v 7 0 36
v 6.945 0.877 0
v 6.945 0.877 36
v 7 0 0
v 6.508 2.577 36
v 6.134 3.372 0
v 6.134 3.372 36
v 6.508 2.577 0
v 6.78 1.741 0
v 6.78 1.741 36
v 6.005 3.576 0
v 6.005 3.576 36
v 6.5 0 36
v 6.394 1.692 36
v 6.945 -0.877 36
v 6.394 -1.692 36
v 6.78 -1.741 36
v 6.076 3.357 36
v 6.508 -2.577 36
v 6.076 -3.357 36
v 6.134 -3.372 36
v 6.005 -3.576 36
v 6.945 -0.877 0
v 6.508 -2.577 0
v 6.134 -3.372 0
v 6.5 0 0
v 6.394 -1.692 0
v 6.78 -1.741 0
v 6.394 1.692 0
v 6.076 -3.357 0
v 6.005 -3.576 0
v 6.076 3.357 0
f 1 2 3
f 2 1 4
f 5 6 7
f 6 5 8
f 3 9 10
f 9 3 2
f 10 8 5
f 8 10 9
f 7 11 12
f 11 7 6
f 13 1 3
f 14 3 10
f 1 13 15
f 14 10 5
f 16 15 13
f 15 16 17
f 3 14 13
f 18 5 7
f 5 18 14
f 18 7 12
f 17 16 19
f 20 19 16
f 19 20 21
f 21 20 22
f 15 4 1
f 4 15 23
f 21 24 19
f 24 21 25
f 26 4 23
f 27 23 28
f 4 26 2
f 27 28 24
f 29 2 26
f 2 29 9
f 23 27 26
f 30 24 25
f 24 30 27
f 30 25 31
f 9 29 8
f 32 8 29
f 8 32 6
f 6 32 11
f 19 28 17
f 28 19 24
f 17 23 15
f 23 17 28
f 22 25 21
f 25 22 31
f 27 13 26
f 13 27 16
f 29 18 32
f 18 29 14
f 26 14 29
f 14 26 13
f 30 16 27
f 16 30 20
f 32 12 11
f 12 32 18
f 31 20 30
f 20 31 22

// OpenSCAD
$fn = 50;


difference() {
	union() {
		cylinder(h = 36, r = 7.0000000000);
		translate(v = [-10.0000000000, 0, 0]) {
			cylinder(h = 36, r = 7.0000000000);
		}
	}
	union() {
		cylinder(h = 36, r = 3.2500000000);
		cylinder(h = 36, r = 1.8000000000);
		cylinder(h = 36, r = 1.8000000000);
		cylinder(h = 36, r = 1.8000000000);
		translate(v = [-14.5000000000, 0, 0]) {
			hull() {
				translate(v = [-3.7500000000, 0.0000000000, 0]) {
					cylinder(h = 36, r = 10.5000000000);
				}
				translate(v = [3.7500000000, 0.0000000000, 0]) {
					cylinder(h = 36, r = 10.5000000000);
				}
				translate(v = [-3.7500000000, -0.0000000000, 0]) {
					cylinder(h = 36, r = 10.5000000000);
				}
				translate(v = [3.7500000000, -0.0000000000, 0]) {
					cylinder(h = 36, r = 10.5000000000);
				}
			}
		}
		translate(v = [-7.0000000000, 0, 0.0000000000]) {
			cylinder(h = 36, r = 13.5000000000);
		}
	}
}
